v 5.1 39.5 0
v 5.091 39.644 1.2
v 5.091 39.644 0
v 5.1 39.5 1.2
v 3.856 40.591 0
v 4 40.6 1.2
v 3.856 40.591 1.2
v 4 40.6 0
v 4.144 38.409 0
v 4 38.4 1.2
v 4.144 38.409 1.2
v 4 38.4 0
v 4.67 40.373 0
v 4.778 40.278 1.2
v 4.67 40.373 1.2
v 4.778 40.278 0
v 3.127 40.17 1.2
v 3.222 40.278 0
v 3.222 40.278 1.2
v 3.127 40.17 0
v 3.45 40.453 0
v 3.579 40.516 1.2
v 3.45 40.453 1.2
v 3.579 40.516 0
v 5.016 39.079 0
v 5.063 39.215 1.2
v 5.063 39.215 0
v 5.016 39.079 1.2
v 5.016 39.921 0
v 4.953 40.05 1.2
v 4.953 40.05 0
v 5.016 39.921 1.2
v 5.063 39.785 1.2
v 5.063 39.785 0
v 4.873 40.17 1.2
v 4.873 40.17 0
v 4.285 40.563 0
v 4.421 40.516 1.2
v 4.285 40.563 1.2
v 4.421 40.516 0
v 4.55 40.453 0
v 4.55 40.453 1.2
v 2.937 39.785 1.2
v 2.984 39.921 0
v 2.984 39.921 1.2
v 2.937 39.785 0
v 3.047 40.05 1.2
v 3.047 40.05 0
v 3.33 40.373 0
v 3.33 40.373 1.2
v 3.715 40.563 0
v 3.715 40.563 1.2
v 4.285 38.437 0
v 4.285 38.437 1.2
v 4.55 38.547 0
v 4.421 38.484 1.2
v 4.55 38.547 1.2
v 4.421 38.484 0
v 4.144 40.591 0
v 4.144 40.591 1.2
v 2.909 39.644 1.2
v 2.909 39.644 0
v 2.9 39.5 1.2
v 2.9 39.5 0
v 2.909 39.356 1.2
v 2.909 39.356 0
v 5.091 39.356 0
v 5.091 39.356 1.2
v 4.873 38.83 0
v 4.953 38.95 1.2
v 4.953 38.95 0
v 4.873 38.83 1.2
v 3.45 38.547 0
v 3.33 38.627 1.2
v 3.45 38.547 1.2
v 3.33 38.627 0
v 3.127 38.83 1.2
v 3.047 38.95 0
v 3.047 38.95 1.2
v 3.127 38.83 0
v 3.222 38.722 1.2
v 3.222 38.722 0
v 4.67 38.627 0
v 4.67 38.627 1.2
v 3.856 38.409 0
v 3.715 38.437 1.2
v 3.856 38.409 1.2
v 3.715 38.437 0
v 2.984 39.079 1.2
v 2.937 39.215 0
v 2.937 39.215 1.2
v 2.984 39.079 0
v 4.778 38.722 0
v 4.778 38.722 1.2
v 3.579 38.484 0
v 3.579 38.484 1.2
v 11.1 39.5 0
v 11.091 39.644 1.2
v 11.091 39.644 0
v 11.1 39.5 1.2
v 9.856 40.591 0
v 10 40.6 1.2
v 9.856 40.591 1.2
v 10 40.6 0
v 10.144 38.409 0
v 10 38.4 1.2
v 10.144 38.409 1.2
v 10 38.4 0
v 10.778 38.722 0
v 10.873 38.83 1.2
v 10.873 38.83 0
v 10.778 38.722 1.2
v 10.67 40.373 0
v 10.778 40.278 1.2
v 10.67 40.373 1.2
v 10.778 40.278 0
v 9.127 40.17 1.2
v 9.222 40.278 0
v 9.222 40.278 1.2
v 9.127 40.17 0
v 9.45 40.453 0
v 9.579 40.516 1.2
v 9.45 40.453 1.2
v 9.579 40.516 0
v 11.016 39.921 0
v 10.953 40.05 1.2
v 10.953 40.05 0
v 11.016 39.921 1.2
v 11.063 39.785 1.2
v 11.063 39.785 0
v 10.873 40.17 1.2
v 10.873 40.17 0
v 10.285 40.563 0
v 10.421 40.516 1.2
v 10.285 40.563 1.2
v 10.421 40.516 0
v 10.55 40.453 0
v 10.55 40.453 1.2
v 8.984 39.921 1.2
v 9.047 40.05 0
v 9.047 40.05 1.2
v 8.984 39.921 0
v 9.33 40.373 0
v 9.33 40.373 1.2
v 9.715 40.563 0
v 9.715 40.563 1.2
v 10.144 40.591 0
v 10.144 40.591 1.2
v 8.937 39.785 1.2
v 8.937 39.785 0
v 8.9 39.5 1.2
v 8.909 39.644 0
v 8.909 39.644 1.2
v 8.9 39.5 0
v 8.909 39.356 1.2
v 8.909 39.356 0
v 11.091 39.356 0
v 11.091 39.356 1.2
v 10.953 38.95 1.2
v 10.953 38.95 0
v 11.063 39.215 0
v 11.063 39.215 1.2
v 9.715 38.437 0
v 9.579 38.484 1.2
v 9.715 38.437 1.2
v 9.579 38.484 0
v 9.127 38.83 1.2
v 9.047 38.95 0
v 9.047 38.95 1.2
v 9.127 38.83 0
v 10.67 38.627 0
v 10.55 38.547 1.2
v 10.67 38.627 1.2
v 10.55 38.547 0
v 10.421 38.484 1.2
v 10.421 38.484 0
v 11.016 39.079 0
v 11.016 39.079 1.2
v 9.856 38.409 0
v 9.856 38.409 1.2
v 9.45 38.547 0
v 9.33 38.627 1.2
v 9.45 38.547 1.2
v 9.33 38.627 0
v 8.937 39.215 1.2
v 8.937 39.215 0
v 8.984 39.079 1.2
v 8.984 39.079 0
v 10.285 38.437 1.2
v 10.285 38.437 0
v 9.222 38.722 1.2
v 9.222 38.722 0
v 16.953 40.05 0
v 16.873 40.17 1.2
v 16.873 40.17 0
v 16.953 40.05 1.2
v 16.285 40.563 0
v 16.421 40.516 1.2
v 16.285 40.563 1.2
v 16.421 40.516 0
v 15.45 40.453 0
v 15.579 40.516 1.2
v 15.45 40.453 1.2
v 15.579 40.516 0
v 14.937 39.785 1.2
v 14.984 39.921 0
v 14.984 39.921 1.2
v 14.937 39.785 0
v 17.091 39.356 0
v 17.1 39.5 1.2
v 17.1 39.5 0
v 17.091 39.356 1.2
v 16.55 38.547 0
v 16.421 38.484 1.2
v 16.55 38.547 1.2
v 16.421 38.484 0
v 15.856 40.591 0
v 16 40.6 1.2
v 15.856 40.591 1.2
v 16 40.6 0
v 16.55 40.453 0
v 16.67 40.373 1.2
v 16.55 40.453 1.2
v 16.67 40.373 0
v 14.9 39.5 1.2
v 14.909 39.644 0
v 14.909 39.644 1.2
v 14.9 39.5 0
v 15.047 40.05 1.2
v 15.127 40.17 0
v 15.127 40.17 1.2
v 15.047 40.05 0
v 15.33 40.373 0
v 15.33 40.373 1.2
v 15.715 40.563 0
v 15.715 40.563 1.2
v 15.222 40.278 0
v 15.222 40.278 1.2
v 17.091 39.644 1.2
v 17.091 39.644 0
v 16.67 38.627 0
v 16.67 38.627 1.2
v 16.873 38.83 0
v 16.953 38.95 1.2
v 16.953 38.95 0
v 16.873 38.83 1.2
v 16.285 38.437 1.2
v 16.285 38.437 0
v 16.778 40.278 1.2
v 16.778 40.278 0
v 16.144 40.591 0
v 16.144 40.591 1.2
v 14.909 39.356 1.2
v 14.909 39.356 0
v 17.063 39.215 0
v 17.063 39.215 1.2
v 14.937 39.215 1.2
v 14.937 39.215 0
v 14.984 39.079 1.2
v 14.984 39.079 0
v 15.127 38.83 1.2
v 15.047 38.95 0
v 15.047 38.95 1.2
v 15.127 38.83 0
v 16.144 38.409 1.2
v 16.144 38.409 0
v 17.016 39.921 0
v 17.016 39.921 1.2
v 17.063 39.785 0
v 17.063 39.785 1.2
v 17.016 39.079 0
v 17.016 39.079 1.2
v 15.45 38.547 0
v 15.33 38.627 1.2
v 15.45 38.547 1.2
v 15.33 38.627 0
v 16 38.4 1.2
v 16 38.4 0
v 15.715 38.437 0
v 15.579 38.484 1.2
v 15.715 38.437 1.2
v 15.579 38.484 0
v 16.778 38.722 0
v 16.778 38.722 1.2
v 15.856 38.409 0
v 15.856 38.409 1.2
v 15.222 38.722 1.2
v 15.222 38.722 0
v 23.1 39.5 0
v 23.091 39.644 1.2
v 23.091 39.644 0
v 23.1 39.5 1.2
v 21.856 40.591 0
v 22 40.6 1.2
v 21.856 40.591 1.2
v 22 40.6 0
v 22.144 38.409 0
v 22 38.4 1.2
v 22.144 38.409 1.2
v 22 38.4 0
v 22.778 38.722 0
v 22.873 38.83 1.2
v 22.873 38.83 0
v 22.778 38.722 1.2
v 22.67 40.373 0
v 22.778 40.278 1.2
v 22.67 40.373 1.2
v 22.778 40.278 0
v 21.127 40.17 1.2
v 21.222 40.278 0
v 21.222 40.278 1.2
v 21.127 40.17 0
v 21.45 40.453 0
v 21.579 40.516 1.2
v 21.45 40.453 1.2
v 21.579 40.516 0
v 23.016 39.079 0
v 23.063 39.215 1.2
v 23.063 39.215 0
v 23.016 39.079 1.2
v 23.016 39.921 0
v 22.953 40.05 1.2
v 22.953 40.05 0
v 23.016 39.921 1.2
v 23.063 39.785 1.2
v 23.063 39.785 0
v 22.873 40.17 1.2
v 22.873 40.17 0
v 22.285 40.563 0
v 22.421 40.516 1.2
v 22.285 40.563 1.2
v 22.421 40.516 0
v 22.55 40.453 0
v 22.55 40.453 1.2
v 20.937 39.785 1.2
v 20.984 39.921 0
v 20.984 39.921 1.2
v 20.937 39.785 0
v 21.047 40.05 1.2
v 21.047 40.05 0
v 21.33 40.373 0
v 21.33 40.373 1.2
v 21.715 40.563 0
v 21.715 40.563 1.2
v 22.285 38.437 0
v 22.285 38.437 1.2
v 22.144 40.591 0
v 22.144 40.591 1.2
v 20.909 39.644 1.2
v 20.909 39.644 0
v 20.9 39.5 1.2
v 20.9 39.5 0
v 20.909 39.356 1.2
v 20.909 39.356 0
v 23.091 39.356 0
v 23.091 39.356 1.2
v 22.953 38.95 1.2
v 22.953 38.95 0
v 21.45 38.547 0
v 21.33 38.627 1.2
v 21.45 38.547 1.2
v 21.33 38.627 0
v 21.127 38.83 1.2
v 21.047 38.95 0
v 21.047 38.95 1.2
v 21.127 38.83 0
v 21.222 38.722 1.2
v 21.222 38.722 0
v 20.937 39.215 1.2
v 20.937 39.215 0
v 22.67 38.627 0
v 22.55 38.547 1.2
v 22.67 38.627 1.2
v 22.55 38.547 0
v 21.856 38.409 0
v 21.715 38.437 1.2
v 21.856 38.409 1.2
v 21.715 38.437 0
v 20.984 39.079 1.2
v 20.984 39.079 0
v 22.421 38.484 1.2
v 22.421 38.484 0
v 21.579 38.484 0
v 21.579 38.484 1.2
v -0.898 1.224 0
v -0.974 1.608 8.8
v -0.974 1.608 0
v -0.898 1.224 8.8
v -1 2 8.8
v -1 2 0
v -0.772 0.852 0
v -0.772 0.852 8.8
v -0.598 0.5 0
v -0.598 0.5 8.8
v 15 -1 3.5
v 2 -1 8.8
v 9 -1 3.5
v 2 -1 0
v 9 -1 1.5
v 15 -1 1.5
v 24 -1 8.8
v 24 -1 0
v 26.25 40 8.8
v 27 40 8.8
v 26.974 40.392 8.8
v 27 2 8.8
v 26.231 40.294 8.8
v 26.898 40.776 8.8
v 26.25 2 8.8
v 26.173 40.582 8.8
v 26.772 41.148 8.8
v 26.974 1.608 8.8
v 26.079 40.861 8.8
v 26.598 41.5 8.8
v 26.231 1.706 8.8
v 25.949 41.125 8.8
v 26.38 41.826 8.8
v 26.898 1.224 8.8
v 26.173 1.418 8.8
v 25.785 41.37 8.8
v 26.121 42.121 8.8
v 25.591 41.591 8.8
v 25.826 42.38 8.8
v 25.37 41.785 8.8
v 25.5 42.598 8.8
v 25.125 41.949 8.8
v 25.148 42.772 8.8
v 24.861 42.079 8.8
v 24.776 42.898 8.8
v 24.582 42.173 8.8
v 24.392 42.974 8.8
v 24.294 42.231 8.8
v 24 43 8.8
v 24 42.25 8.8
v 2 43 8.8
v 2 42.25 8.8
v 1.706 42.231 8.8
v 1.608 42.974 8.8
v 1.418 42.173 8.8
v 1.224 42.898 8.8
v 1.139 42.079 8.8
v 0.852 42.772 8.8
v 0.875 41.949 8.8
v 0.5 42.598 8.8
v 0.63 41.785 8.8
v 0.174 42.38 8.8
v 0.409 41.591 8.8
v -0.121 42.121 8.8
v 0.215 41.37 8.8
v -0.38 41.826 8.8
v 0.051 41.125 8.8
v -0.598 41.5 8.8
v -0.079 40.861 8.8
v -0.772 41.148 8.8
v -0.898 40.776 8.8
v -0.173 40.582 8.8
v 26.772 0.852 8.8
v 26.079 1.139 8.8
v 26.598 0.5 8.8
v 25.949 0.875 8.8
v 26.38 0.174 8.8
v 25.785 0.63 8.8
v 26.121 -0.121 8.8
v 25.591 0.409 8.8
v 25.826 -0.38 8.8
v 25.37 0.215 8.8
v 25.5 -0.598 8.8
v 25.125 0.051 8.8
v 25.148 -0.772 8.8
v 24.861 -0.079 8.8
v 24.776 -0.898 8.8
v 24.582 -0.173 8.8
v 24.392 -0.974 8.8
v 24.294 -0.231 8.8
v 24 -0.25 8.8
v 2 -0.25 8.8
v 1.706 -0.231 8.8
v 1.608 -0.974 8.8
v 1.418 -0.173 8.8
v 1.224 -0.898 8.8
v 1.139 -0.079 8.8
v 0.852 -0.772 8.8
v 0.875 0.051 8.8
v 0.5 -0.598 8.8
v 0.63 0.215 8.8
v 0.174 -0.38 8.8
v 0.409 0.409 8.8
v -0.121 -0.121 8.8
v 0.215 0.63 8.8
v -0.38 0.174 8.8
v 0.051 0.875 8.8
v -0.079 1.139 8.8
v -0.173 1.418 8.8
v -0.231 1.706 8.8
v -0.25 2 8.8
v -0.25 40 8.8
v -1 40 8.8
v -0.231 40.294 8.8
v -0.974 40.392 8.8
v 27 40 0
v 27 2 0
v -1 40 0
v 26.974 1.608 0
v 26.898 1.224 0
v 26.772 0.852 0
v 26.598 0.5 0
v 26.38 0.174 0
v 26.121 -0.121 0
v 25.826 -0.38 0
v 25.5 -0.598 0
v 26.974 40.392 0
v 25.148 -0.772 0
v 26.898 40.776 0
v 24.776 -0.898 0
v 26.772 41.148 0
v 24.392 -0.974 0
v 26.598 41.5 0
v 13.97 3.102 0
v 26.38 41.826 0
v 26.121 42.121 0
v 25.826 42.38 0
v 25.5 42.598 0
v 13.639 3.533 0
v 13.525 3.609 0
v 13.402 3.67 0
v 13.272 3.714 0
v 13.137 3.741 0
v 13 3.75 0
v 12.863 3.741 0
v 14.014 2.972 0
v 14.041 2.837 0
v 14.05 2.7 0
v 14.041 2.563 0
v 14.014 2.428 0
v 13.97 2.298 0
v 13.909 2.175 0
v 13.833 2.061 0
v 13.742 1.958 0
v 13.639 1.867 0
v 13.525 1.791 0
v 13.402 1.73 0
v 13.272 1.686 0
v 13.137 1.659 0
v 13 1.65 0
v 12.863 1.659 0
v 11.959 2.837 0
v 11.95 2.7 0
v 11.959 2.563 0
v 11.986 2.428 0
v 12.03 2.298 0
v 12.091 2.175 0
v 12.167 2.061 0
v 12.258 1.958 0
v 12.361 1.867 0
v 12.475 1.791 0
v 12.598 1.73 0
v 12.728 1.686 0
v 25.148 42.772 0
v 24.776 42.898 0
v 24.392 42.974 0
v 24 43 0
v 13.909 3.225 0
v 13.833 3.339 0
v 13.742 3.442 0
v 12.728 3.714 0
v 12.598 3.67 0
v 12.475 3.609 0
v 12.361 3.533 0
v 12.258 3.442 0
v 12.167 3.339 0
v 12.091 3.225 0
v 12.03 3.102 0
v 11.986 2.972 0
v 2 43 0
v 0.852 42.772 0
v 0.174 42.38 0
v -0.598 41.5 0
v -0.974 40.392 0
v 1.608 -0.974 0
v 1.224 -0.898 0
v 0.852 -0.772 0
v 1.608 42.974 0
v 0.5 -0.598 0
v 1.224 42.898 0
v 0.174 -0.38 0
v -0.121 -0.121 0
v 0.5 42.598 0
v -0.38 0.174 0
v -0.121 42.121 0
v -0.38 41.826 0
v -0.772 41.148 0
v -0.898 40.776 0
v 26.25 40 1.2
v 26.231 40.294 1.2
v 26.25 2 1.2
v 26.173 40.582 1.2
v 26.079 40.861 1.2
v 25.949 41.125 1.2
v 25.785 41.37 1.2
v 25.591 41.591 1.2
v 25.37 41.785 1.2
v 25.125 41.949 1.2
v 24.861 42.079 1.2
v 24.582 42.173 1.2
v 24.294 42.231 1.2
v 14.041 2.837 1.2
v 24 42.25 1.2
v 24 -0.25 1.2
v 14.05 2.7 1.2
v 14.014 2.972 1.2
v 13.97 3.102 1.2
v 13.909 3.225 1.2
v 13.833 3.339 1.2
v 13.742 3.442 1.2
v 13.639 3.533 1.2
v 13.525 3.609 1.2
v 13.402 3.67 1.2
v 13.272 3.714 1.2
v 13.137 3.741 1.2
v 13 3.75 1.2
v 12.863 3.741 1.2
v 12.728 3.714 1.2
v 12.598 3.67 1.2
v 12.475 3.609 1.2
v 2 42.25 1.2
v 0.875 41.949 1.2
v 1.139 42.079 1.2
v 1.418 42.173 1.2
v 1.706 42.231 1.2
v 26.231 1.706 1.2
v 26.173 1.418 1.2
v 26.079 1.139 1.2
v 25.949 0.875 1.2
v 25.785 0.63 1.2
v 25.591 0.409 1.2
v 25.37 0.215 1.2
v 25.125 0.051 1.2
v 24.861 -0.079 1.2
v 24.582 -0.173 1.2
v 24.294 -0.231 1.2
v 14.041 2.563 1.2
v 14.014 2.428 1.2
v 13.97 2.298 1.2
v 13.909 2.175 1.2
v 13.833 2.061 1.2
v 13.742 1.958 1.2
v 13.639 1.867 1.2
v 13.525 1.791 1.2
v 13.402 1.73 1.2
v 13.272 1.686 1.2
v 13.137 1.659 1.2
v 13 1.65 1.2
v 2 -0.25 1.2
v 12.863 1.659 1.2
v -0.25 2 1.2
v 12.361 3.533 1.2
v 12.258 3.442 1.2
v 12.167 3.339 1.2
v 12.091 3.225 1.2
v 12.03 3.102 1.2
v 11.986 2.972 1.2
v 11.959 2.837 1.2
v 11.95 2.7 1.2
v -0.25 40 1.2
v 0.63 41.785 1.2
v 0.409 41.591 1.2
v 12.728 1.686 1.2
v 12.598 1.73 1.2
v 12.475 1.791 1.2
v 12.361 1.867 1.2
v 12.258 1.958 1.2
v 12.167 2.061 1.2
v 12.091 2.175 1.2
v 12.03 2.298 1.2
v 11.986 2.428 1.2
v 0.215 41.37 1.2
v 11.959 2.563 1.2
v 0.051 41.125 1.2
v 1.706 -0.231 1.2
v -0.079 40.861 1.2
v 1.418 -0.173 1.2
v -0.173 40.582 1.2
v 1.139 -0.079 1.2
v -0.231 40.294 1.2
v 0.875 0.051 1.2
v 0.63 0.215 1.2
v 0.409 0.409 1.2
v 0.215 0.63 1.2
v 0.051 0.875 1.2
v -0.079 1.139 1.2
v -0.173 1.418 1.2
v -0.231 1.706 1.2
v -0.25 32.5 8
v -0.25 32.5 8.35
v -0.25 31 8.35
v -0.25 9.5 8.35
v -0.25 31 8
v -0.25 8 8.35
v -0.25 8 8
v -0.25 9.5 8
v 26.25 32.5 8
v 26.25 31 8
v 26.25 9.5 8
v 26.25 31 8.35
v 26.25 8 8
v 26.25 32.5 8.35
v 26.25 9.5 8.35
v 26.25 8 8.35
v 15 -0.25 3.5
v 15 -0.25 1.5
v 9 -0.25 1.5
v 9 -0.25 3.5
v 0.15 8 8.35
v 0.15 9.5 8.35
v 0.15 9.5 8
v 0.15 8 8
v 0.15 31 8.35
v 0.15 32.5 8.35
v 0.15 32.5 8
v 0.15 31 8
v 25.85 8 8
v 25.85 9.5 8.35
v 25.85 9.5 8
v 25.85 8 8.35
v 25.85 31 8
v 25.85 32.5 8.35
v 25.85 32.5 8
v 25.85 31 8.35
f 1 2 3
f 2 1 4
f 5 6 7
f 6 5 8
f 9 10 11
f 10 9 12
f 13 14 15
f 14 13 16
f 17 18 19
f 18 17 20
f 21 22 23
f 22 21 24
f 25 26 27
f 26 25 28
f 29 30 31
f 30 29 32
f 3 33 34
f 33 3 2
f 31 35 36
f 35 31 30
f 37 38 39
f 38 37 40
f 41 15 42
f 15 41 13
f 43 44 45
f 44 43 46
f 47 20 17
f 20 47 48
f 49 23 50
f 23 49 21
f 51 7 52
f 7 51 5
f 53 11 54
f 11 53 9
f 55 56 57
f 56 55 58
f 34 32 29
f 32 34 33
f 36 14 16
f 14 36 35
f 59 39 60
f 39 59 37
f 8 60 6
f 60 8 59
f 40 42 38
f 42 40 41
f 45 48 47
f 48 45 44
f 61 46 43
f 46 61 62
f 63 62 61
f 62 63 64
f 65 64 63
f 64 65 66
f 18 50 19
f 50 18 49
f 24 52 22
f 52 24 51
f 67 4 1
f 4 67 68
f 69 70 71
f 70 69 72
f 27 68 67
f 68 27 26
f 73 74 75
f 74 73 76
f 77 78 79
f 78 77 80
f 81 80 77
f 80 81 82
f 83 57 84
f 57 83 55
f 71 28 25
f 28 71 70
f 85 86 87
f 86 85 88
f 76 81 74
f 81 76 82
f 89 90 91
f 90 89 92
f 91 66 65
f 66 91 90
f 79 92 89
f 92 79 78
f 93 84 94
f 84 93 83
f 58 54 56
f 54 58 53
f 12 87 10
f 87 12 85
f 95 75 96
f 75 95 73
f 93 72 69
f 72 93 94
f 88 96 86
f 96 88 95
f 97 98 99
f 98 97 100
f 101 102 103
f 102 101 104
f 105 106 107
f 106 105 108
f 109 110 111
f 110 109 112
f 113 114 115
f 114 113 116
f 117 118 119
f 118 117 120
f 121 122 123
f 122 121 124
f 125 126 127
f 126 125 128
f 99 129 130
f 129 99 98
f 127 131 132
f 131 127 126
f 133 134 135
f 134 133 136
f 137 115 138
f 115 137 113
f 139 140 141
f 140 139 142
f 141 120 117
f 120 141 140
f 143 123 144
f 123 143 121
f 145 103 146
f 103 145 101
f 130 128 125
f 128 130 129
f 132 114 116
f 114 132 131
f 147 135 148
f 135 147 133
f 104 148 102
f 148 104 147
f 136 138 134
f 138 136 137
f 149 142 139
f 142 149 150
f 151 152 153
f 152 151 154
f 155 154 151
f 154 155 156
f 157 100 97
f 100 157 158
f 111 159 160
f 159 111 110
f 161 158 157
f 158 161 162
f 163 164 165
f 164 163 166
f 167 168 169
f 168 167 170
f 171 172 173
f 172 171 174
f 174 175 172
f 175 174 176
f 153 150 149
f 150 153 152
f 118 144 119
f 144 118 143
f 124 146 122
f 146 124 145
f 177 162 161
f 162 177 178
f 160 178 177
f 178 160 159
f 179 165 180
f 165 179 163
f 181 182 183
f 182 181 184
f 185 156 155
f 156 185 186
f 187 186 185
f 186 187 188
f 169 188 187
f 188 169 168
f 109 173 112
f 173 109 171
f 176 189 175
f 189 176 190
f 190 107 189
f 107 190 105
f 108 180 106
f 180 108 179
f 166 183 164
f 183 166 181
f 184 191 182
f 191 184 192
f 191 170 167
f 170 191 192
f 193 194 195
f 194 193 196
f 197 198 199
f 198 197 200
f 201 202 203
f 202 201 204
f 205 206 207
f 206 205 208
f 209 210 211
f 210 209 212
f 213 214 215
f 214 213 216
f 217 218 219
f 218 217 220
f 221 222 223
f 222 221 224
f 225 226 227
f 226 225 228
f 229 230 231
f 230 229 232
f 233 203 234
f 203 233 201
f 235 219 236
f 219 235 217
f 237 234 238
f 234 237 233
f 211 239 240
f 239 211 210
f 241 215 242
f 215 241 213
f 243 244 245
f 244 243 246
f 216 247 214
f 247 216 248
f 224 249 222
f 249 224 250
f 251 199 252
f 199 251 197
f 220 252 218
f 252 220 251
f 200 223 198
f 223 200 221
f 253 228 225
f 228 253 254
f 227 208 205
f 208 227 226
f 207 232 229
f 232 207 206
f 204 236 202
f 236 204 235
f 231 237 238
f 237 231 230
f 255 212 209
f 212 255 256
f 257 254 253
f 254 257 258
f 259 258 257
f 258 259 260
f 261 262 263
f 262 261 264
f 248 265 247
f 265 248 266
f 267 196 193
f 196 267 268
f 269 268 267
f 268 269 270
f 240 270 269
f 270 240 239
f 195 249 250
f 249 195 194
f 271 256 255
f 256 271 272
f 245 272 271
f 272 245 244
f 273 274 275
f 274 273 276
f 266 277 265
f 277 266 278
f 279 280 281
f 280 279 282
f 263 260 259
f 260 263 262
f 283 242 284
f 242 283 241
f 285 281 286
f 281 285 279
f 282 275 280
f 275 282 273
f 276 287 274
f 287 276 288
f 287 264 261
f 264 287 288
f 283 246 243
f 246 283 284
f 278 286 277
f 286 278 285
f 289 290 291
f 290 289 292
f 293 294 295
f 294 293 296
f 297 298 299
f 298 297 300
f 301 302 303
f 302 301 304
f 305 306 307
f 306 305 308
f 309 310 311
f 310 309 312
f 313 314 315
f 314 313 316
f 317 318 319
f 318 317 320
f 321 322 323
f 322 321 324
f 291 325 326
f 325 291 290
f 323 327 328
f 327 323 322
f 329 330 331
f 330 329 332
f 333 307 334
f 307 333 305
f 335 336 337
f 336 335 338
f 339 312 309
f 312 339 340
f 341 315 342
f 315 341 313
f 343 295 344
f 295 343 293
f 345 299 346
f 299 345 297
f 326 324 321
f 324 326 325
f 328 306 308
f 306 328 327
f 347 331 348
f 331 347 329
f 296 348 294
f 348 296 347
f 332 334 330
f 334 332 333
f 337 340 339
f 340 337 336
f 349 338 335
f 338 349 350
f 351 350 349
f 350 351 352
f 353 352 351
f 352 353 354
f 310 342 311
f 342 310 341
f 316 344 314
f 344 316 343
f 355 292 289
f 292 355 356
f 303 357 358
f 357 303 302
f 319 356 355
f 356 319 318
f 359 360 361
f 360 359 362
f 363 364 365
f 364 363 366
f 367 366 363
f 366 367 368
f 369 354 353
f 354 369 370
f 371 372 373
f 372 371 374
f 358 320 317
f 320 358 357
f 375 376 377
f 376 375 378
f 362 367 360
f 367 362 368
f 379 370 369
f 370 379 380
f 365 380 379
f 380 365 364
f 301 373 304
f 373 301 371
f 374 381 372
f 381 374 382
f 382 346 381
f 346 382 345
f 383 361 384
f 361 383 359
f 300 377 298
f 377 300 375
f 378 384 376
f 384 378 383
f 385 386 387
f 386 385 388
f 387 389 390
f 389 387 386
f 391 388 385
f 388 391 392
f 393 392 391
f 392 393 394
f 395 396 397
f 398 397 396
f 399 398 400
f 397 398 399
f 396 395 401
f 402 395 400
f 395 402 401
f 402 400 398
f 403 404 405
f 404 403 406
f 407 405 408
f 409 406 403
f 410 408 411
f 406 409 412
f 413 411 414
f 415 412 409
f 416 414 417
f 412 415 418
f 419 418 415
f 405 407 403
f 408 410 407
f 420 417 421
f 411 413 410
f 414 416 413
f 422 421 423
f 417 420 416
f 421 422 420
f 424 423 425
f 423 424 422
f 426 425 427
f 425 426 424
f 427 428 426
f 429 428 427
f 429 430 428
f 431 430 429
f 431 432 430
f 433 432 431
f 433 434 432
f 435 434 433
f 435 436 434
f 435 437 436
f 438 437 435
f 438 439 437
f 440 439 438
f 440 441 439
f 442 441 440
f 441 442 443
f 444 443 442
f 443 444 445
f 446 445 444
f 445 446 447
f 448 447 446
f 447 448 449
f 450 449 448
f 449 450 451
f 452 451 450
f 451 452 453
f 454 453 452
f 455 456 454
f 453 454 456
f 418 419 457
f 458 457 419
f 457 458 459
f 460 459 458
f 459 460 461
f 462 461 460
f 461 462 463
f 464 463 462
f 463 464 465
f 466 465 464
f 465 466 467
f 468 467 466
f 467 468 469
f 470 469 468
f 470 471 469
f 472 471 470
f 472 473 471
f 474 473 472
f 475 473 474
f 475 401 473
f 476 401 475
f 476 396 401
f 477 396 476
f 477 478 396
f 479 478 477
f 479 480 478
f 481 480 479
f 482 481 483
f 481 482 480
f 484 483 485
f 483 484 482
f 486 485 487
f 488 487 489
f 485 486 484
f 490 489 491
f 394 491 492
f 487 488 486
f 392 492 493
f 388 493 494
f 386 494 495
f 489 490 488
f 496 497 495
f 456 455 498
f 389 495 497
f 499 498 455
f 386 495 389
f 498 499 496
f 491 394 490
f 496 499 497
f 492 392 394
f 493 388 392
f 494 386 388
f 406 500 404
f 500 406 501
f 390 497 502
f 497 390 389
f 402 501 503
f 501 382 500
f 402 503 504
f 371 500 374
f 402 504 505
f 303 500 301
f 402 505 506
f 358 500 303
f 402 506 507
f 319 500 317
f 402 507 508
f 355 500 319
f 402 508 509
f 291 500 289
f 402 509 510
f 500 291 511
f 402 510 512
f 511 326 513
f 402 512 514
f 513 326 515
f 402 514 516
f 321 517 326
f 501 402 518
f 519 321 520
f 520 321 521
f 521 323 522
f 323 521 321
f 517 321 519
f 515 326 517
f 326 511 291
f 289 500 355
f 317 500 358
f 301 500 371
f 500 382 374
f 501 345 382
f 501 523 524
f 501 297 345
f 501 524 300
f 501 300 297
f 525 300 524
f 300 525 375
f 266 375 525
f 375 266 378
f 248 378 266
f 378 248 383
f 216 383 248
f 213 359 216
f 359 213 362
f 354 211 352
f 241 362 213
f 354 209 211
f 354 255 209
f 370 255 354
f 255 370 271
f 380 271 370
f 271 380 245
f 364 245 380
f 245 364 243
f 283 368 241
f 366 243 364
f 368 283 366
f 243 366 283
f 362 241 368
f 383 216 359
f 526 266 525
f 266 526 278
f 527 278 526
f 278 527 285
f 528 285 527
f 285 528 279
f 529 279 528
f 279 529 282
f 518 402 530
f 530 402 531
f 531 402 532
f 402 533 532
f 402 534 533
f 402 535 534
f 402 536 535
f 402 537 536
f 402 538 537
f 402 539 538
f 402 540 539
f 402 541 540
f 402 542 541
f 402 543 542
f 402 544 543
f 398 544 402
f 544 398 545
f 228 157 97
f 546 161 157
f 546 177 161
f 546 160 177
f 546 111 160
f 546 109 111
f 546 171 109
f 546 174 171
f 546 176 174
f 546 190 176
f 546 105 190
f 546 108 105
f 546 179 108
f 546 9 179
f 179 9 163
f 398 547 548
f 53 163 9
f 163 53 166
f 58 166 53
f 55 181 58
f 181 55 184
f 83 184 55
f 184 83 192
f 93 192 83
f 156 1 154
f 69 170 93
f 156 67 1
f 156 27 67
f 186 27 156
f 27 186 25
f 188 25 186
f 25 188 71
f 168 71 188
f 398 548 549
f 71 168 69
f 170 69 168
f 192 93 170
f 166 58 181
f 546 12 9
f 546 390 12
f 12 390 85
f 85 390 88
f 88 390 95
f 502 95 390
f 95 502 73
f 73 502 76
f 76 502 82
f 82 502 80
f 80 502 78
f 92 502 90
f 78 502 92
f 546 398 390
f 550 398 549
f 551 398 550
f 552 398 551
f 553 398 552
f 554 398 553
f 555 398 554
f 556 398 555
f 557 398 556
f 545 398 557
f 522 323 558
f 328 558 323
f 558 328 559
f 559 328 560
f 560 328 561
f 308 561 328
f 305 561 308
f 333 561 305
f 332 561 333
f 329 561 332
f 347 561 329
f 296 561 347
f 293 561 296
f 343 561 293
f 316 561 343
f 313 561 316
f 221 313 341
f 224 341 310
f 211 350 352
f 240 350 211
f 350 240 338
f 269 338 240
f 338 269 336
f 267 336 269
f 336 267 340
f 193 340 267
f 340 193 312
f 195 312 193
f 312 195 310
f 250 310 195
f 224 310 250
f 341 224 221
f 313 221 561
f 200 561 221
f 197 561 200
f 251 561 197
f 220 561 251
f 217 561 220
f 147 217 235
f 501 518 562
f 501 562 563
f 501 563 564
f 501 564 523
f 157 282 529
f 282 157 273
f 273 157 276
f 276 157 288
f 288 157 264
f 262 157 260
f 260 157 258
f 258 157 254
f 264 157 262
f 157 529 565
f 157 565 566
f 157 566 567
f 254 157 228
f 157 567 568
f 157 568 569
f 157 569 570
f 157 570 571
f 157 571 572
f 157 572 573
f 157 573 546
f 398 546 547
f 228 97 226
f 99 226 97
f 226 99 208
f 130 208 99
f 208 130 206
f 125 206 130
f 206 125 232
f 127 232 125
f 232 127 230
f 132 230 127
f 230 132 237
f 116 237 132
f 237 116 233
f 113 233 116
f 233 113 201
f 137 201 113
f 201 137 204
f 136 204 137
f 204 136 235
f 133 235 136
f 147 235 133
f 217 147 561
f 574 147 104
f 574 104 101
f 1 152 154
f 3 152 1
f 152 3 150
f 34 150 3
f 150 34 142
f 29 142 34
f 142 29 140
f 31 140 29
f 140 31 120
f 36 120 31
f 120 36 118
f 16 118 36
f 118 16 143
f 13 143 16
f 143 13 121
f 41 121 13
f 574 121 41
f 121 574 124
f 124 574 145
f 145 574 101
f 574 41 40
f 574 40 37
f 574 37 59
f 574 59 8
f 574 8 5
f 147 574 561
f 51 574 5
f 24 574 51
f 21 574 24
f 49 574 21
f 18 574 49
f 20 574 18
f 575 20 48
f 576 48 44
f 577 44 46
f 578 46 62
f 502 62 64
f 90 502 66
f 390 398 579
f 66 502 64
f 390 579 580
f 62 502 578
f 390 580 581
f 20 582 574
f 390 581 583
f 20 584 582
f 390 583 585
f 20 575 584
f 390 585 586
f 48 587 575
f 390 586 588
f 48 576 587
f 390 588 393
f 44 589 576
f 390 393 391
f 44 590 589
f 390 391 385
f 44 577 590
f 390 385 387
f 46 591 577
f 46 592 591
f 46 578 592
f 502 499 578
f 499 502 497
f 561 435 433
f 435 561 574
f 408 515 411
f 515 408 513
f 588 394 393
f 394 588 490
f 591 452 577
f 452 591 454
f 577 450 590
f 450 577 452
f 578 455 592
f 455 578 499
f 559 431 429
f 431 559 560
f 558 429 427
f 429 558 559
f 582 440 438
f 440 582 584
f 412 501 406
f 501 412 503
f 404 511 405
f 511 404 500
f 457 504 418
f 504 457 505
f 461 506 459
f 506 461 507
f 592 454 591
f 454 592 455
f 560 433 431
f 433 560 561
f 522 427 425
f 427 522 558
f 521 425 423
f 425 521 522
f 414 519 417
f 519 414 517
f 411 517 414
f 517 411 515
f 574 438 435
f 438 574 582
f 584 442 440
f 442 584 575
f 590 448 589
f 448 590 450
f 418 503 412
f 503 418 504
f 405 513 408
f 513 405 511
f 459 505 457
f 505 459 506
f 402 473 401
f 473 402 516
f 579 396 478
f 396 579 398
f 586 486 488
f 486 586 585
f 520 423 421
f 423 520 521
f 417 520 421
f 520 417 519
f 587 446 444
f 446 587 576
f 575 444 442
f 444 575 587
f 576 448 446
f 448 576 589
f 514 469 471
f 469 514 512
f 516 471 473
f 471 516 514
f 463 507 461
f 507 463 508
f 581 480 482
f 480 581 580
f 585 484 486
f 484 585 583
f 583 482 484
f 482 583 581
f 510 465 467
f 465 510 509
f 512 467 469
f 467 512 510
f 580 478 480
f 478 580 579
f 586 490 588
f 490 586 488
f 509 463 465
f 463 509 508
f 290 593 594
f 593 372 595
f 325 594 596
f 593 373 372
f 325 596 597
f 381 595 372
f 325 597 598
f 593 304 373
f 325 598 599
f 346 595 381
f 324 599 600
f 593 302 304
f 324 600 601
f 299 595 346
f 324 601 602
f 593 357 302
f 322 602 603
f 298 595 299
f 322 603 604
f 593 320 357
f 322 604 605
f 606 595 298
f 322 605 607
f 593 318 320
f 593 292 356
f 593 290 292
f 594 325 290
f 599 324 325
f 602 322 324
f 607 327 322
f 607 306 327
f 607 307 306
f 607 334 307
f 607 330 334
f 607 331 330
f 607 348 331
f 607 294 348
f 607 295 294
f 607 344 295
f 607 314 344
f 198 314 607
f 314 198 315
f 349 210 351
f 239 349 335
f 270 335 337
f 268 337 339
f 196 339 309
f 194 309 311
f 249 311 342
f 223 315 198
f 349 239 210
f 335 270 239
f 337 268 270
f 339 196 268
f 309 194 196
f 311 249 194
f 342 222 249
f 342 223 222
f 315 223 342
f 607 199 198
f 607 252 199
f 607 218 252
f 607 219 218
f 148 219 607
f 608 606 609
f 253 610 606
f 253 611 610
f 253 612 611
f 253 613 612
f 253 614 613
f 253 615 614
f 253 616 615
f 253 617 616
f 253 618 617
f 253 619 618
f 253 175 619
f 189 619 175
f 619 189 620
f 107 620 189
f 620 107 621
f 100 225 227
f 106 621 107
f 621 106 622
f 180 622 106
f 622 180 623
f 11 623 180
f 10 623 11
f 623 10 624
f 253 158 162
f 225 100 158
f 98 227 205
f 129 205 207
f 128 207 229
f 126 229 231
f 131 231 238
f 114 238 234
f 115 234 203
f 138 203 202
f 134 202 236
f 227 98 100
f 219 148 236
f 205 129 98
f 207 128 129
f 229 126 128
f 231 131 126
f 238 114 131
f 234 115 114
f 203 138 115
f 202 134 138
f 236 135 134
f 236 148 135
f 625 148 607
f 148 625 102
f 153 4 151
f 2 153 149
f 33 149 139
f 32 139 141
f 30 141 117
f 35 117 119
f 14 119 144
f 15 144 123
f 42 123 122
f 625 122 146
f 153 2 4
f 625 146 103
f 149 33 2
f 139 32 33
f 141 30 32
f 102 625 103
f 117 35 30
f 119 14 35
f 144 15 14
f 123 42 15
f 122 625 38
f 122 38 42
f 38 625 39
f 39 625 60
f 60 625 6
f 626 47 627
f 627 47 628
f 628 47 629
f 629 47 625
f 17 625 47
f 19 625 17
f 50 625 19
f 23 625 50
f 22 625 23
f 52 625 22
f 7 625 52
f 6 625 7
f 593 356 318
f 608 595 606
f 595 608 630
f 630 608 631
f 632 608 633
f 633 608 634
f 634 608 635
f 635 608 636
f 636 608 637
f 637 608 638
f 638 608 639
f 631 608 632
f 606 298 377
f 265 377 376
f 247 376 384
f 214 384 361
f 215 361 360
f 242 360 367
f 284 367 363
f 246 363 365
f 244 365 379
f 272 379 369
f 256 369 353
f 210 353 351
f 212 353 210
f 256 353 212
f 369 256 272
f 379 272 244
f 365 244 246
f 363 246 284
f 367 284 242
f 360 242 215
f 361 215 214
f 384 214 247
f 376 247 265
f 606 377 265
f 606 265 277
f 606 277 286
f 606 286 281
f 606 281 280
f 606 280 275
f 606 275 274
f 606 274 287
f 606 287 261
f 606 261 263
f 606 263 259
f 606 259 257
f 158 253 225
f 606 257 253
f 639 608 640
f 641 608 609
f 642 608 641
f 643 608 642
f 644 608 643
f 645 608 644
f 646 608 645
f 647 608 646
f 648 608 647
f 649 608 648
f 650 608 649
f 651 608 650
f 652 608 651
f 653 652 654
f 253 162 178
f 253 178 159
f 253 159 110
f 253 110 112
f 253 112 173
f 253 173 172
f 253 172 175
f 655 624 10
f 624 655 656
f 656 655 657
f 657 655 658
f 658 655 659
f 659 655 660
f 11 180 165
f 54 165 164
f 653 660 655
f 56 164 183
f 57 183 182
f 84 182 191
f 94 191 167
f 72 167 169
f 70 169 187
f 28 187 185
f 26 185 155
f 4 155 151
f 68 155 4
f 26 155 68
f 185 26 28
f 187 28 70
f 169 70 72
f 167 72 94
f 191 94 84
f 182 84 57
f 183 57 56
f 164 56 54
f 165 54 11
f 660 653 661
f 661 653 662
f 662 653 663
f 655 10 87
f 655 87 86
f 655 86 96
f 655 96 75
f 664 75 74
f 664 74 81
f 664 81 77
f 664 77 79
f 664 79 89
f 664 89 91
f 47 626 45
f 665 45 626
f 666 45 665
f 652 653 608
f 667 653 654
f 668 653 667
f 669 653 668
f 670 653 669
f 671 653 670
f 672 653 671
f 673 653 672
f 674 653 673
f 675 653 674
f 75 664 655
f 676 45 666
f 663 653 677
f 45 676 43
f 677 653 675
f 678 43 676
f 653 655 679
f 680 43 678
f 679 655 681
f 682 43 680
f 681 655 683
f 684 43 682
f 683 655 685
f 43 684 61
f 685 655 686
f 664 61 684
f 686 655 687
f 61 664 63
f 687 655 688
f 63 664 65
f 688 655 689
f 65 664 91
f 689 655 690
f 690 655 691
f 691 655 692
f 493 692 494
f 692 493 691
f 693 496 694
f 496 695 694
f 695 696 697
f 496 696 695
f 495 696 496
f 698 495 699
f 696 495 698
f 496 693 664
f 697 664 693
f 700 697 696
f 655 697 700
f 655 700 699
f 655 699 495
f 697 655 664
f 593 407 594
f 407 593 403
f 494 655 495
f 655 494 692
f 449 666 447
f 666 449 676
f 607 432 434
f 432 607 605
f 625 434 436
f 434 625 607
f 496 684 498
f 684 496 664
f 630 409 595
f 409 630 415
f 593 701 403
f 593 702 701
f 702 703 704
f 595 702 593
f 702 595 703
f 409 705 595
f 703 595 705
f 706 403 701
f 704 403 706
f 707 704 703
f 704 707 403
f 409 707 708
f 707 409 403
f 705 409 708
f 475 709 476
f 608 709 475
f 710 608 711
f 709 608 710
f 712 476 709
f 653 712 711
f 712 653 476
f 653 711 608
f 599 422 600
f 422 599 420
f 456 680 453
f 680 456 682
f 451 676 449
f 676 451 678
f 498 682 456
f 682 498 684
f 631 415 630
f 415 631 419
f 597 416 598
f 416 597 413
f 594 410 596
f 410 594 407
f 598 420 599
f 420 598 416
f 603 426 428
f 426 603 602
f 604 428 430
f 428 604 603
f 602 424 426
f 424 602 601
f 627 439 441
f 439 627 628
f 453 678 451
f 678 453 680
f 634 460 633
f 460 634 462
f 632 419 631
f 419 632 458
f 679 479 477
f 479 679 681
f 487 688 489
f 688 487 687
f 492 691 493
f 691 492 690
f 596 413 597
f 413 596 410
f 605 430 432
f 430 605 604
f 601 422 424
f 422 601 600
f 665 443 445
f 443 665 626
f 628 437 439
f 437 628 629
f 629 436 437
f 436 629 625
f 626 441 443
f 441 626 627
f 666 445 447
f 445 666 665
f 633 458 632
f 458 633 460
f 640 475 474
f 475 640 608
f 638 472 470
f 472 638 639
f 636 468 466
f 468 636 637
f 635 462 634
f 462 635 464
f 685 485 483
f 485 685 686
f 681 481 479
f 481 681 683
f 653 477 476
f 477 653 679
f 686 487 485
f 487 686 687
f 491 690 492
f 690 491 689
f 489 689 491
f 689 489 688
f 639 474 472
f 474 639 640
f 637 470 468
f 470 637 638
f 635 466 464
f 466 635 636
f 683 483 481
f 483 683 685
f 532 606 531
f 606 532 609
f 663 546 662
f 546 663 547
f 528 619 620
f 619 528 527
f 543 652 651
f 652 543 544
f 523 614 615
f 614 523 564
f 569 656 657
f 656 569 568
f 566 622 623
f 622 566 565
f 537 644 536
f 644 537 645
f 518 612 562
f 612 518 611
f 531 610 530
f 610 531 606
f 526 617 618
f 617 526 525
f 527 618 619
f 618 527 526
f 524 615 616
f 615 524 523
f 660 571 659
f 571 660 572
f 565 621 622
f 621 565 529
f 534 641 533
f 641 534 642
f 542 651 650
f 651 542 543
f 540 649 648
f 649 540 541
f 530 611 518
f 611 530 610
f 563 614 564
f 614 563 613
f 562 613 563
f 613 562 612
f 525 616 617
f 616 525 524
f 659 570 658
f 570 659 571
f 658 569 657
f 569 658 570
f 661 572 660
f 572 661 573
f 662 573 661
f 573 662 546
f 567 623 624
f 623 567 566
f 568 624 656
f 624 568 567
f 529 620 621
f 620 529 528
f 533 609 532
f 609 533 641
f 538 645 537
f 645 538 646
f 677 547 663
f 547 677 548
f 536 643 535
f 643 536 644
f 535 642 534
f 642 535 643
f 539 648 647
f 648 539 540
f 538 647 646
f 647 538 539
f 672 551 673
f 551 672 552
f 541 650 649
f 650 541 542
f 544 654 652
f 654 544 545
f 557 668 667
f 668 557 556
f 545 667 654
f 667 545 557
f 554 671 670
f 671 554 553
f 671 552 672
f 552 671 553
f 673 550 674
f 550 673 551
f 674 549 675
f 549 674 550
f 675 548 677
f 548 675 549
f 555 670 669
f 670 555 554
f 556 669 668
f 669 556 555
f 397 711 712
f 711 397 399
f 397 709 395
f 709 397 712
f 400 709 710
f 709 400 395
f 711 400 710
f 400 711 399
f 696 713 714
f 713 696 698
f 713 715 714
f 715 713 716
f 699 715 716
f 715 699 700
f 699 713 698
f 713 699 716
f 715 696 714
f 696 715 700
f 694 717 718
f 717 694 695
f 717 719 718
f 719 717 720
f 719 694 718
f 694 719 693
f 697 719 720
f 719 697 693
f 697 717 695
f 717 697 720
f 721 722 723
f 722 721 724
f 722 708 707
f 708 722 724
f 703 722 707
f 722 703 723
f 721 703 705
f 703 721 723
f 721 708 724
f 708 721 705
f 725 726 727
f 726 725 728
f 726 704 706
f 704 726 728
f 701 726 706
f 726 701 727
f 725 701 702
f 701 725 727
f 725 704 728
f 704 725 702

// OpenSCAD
// Rear tray study for one 26 x 42 mm PCB. Units: mm.
// Export an STL from OpenSCAD after adjusting measured hardware dimensions.
$fn = 48;
board_w = 26;
board_h = 42;
board_t = 0.8;
wall = 1.0;
base = 1.2;
cavity_depth = 6.8;
clearance = 0.25;
corner_r = 2.0;
hook_x = 13;
hook_y = 2.7;
hook_d = 1.5;
pad_y = 39.5;
pad_x = [4, 10, 16, 22]; // dock contacts first two; final two for UPDI + VTG

module rounded_plate(w, h, r, height) {
    linear_extrude(height=height)
        hull()
            for (x=[r, w-r], y=[r, h-r]) translate([x,y]) circle(r=r);
}

module tray() {
    difference() {
        translate([-wall,-wall,0])
            rounded_plate(board_w+2*wall, board_h+2*wall, corner_r+wall,
                          base+cavity_depth+board_t);
        // Rear component and cell cavity; board rests at its top edge.
        translate([-clearance,-clearance,base])
            rounded_plate(board_w+2*clearance,board_h+2*clearance,
                          corner_r+clearance,cavity_depth+board_t+1);
        // Mechanical hook passes through board and tray base.
        translate([hook_x,hook_y,-0.1]) cylinder(d=hook_d+0.6,h=base+0.2);
        // Rear pogo access wells. Verify diameter with actual contact tip.
        for (x=pad_x) translate([x,pad_y,-0.1]) cylinder(d=2.2,h=base+0.2);
        // Small bottom drainage/inspection slot, away from the battery.
        translate([9,-wall-0.1,1.5]) cube([6,wall+clearance+0.2,2]);
    }
    // Four flexible retention nibs; tune after the first print.
    // Nibs overlap the wall so the STL remains one connected solid.
    for (x=[-0.55,board_w-0.15], y=[8,31])
        translate([x,y,base+cavity_depth]) cube([0.7,1.5,0.35]);
}

tray();
